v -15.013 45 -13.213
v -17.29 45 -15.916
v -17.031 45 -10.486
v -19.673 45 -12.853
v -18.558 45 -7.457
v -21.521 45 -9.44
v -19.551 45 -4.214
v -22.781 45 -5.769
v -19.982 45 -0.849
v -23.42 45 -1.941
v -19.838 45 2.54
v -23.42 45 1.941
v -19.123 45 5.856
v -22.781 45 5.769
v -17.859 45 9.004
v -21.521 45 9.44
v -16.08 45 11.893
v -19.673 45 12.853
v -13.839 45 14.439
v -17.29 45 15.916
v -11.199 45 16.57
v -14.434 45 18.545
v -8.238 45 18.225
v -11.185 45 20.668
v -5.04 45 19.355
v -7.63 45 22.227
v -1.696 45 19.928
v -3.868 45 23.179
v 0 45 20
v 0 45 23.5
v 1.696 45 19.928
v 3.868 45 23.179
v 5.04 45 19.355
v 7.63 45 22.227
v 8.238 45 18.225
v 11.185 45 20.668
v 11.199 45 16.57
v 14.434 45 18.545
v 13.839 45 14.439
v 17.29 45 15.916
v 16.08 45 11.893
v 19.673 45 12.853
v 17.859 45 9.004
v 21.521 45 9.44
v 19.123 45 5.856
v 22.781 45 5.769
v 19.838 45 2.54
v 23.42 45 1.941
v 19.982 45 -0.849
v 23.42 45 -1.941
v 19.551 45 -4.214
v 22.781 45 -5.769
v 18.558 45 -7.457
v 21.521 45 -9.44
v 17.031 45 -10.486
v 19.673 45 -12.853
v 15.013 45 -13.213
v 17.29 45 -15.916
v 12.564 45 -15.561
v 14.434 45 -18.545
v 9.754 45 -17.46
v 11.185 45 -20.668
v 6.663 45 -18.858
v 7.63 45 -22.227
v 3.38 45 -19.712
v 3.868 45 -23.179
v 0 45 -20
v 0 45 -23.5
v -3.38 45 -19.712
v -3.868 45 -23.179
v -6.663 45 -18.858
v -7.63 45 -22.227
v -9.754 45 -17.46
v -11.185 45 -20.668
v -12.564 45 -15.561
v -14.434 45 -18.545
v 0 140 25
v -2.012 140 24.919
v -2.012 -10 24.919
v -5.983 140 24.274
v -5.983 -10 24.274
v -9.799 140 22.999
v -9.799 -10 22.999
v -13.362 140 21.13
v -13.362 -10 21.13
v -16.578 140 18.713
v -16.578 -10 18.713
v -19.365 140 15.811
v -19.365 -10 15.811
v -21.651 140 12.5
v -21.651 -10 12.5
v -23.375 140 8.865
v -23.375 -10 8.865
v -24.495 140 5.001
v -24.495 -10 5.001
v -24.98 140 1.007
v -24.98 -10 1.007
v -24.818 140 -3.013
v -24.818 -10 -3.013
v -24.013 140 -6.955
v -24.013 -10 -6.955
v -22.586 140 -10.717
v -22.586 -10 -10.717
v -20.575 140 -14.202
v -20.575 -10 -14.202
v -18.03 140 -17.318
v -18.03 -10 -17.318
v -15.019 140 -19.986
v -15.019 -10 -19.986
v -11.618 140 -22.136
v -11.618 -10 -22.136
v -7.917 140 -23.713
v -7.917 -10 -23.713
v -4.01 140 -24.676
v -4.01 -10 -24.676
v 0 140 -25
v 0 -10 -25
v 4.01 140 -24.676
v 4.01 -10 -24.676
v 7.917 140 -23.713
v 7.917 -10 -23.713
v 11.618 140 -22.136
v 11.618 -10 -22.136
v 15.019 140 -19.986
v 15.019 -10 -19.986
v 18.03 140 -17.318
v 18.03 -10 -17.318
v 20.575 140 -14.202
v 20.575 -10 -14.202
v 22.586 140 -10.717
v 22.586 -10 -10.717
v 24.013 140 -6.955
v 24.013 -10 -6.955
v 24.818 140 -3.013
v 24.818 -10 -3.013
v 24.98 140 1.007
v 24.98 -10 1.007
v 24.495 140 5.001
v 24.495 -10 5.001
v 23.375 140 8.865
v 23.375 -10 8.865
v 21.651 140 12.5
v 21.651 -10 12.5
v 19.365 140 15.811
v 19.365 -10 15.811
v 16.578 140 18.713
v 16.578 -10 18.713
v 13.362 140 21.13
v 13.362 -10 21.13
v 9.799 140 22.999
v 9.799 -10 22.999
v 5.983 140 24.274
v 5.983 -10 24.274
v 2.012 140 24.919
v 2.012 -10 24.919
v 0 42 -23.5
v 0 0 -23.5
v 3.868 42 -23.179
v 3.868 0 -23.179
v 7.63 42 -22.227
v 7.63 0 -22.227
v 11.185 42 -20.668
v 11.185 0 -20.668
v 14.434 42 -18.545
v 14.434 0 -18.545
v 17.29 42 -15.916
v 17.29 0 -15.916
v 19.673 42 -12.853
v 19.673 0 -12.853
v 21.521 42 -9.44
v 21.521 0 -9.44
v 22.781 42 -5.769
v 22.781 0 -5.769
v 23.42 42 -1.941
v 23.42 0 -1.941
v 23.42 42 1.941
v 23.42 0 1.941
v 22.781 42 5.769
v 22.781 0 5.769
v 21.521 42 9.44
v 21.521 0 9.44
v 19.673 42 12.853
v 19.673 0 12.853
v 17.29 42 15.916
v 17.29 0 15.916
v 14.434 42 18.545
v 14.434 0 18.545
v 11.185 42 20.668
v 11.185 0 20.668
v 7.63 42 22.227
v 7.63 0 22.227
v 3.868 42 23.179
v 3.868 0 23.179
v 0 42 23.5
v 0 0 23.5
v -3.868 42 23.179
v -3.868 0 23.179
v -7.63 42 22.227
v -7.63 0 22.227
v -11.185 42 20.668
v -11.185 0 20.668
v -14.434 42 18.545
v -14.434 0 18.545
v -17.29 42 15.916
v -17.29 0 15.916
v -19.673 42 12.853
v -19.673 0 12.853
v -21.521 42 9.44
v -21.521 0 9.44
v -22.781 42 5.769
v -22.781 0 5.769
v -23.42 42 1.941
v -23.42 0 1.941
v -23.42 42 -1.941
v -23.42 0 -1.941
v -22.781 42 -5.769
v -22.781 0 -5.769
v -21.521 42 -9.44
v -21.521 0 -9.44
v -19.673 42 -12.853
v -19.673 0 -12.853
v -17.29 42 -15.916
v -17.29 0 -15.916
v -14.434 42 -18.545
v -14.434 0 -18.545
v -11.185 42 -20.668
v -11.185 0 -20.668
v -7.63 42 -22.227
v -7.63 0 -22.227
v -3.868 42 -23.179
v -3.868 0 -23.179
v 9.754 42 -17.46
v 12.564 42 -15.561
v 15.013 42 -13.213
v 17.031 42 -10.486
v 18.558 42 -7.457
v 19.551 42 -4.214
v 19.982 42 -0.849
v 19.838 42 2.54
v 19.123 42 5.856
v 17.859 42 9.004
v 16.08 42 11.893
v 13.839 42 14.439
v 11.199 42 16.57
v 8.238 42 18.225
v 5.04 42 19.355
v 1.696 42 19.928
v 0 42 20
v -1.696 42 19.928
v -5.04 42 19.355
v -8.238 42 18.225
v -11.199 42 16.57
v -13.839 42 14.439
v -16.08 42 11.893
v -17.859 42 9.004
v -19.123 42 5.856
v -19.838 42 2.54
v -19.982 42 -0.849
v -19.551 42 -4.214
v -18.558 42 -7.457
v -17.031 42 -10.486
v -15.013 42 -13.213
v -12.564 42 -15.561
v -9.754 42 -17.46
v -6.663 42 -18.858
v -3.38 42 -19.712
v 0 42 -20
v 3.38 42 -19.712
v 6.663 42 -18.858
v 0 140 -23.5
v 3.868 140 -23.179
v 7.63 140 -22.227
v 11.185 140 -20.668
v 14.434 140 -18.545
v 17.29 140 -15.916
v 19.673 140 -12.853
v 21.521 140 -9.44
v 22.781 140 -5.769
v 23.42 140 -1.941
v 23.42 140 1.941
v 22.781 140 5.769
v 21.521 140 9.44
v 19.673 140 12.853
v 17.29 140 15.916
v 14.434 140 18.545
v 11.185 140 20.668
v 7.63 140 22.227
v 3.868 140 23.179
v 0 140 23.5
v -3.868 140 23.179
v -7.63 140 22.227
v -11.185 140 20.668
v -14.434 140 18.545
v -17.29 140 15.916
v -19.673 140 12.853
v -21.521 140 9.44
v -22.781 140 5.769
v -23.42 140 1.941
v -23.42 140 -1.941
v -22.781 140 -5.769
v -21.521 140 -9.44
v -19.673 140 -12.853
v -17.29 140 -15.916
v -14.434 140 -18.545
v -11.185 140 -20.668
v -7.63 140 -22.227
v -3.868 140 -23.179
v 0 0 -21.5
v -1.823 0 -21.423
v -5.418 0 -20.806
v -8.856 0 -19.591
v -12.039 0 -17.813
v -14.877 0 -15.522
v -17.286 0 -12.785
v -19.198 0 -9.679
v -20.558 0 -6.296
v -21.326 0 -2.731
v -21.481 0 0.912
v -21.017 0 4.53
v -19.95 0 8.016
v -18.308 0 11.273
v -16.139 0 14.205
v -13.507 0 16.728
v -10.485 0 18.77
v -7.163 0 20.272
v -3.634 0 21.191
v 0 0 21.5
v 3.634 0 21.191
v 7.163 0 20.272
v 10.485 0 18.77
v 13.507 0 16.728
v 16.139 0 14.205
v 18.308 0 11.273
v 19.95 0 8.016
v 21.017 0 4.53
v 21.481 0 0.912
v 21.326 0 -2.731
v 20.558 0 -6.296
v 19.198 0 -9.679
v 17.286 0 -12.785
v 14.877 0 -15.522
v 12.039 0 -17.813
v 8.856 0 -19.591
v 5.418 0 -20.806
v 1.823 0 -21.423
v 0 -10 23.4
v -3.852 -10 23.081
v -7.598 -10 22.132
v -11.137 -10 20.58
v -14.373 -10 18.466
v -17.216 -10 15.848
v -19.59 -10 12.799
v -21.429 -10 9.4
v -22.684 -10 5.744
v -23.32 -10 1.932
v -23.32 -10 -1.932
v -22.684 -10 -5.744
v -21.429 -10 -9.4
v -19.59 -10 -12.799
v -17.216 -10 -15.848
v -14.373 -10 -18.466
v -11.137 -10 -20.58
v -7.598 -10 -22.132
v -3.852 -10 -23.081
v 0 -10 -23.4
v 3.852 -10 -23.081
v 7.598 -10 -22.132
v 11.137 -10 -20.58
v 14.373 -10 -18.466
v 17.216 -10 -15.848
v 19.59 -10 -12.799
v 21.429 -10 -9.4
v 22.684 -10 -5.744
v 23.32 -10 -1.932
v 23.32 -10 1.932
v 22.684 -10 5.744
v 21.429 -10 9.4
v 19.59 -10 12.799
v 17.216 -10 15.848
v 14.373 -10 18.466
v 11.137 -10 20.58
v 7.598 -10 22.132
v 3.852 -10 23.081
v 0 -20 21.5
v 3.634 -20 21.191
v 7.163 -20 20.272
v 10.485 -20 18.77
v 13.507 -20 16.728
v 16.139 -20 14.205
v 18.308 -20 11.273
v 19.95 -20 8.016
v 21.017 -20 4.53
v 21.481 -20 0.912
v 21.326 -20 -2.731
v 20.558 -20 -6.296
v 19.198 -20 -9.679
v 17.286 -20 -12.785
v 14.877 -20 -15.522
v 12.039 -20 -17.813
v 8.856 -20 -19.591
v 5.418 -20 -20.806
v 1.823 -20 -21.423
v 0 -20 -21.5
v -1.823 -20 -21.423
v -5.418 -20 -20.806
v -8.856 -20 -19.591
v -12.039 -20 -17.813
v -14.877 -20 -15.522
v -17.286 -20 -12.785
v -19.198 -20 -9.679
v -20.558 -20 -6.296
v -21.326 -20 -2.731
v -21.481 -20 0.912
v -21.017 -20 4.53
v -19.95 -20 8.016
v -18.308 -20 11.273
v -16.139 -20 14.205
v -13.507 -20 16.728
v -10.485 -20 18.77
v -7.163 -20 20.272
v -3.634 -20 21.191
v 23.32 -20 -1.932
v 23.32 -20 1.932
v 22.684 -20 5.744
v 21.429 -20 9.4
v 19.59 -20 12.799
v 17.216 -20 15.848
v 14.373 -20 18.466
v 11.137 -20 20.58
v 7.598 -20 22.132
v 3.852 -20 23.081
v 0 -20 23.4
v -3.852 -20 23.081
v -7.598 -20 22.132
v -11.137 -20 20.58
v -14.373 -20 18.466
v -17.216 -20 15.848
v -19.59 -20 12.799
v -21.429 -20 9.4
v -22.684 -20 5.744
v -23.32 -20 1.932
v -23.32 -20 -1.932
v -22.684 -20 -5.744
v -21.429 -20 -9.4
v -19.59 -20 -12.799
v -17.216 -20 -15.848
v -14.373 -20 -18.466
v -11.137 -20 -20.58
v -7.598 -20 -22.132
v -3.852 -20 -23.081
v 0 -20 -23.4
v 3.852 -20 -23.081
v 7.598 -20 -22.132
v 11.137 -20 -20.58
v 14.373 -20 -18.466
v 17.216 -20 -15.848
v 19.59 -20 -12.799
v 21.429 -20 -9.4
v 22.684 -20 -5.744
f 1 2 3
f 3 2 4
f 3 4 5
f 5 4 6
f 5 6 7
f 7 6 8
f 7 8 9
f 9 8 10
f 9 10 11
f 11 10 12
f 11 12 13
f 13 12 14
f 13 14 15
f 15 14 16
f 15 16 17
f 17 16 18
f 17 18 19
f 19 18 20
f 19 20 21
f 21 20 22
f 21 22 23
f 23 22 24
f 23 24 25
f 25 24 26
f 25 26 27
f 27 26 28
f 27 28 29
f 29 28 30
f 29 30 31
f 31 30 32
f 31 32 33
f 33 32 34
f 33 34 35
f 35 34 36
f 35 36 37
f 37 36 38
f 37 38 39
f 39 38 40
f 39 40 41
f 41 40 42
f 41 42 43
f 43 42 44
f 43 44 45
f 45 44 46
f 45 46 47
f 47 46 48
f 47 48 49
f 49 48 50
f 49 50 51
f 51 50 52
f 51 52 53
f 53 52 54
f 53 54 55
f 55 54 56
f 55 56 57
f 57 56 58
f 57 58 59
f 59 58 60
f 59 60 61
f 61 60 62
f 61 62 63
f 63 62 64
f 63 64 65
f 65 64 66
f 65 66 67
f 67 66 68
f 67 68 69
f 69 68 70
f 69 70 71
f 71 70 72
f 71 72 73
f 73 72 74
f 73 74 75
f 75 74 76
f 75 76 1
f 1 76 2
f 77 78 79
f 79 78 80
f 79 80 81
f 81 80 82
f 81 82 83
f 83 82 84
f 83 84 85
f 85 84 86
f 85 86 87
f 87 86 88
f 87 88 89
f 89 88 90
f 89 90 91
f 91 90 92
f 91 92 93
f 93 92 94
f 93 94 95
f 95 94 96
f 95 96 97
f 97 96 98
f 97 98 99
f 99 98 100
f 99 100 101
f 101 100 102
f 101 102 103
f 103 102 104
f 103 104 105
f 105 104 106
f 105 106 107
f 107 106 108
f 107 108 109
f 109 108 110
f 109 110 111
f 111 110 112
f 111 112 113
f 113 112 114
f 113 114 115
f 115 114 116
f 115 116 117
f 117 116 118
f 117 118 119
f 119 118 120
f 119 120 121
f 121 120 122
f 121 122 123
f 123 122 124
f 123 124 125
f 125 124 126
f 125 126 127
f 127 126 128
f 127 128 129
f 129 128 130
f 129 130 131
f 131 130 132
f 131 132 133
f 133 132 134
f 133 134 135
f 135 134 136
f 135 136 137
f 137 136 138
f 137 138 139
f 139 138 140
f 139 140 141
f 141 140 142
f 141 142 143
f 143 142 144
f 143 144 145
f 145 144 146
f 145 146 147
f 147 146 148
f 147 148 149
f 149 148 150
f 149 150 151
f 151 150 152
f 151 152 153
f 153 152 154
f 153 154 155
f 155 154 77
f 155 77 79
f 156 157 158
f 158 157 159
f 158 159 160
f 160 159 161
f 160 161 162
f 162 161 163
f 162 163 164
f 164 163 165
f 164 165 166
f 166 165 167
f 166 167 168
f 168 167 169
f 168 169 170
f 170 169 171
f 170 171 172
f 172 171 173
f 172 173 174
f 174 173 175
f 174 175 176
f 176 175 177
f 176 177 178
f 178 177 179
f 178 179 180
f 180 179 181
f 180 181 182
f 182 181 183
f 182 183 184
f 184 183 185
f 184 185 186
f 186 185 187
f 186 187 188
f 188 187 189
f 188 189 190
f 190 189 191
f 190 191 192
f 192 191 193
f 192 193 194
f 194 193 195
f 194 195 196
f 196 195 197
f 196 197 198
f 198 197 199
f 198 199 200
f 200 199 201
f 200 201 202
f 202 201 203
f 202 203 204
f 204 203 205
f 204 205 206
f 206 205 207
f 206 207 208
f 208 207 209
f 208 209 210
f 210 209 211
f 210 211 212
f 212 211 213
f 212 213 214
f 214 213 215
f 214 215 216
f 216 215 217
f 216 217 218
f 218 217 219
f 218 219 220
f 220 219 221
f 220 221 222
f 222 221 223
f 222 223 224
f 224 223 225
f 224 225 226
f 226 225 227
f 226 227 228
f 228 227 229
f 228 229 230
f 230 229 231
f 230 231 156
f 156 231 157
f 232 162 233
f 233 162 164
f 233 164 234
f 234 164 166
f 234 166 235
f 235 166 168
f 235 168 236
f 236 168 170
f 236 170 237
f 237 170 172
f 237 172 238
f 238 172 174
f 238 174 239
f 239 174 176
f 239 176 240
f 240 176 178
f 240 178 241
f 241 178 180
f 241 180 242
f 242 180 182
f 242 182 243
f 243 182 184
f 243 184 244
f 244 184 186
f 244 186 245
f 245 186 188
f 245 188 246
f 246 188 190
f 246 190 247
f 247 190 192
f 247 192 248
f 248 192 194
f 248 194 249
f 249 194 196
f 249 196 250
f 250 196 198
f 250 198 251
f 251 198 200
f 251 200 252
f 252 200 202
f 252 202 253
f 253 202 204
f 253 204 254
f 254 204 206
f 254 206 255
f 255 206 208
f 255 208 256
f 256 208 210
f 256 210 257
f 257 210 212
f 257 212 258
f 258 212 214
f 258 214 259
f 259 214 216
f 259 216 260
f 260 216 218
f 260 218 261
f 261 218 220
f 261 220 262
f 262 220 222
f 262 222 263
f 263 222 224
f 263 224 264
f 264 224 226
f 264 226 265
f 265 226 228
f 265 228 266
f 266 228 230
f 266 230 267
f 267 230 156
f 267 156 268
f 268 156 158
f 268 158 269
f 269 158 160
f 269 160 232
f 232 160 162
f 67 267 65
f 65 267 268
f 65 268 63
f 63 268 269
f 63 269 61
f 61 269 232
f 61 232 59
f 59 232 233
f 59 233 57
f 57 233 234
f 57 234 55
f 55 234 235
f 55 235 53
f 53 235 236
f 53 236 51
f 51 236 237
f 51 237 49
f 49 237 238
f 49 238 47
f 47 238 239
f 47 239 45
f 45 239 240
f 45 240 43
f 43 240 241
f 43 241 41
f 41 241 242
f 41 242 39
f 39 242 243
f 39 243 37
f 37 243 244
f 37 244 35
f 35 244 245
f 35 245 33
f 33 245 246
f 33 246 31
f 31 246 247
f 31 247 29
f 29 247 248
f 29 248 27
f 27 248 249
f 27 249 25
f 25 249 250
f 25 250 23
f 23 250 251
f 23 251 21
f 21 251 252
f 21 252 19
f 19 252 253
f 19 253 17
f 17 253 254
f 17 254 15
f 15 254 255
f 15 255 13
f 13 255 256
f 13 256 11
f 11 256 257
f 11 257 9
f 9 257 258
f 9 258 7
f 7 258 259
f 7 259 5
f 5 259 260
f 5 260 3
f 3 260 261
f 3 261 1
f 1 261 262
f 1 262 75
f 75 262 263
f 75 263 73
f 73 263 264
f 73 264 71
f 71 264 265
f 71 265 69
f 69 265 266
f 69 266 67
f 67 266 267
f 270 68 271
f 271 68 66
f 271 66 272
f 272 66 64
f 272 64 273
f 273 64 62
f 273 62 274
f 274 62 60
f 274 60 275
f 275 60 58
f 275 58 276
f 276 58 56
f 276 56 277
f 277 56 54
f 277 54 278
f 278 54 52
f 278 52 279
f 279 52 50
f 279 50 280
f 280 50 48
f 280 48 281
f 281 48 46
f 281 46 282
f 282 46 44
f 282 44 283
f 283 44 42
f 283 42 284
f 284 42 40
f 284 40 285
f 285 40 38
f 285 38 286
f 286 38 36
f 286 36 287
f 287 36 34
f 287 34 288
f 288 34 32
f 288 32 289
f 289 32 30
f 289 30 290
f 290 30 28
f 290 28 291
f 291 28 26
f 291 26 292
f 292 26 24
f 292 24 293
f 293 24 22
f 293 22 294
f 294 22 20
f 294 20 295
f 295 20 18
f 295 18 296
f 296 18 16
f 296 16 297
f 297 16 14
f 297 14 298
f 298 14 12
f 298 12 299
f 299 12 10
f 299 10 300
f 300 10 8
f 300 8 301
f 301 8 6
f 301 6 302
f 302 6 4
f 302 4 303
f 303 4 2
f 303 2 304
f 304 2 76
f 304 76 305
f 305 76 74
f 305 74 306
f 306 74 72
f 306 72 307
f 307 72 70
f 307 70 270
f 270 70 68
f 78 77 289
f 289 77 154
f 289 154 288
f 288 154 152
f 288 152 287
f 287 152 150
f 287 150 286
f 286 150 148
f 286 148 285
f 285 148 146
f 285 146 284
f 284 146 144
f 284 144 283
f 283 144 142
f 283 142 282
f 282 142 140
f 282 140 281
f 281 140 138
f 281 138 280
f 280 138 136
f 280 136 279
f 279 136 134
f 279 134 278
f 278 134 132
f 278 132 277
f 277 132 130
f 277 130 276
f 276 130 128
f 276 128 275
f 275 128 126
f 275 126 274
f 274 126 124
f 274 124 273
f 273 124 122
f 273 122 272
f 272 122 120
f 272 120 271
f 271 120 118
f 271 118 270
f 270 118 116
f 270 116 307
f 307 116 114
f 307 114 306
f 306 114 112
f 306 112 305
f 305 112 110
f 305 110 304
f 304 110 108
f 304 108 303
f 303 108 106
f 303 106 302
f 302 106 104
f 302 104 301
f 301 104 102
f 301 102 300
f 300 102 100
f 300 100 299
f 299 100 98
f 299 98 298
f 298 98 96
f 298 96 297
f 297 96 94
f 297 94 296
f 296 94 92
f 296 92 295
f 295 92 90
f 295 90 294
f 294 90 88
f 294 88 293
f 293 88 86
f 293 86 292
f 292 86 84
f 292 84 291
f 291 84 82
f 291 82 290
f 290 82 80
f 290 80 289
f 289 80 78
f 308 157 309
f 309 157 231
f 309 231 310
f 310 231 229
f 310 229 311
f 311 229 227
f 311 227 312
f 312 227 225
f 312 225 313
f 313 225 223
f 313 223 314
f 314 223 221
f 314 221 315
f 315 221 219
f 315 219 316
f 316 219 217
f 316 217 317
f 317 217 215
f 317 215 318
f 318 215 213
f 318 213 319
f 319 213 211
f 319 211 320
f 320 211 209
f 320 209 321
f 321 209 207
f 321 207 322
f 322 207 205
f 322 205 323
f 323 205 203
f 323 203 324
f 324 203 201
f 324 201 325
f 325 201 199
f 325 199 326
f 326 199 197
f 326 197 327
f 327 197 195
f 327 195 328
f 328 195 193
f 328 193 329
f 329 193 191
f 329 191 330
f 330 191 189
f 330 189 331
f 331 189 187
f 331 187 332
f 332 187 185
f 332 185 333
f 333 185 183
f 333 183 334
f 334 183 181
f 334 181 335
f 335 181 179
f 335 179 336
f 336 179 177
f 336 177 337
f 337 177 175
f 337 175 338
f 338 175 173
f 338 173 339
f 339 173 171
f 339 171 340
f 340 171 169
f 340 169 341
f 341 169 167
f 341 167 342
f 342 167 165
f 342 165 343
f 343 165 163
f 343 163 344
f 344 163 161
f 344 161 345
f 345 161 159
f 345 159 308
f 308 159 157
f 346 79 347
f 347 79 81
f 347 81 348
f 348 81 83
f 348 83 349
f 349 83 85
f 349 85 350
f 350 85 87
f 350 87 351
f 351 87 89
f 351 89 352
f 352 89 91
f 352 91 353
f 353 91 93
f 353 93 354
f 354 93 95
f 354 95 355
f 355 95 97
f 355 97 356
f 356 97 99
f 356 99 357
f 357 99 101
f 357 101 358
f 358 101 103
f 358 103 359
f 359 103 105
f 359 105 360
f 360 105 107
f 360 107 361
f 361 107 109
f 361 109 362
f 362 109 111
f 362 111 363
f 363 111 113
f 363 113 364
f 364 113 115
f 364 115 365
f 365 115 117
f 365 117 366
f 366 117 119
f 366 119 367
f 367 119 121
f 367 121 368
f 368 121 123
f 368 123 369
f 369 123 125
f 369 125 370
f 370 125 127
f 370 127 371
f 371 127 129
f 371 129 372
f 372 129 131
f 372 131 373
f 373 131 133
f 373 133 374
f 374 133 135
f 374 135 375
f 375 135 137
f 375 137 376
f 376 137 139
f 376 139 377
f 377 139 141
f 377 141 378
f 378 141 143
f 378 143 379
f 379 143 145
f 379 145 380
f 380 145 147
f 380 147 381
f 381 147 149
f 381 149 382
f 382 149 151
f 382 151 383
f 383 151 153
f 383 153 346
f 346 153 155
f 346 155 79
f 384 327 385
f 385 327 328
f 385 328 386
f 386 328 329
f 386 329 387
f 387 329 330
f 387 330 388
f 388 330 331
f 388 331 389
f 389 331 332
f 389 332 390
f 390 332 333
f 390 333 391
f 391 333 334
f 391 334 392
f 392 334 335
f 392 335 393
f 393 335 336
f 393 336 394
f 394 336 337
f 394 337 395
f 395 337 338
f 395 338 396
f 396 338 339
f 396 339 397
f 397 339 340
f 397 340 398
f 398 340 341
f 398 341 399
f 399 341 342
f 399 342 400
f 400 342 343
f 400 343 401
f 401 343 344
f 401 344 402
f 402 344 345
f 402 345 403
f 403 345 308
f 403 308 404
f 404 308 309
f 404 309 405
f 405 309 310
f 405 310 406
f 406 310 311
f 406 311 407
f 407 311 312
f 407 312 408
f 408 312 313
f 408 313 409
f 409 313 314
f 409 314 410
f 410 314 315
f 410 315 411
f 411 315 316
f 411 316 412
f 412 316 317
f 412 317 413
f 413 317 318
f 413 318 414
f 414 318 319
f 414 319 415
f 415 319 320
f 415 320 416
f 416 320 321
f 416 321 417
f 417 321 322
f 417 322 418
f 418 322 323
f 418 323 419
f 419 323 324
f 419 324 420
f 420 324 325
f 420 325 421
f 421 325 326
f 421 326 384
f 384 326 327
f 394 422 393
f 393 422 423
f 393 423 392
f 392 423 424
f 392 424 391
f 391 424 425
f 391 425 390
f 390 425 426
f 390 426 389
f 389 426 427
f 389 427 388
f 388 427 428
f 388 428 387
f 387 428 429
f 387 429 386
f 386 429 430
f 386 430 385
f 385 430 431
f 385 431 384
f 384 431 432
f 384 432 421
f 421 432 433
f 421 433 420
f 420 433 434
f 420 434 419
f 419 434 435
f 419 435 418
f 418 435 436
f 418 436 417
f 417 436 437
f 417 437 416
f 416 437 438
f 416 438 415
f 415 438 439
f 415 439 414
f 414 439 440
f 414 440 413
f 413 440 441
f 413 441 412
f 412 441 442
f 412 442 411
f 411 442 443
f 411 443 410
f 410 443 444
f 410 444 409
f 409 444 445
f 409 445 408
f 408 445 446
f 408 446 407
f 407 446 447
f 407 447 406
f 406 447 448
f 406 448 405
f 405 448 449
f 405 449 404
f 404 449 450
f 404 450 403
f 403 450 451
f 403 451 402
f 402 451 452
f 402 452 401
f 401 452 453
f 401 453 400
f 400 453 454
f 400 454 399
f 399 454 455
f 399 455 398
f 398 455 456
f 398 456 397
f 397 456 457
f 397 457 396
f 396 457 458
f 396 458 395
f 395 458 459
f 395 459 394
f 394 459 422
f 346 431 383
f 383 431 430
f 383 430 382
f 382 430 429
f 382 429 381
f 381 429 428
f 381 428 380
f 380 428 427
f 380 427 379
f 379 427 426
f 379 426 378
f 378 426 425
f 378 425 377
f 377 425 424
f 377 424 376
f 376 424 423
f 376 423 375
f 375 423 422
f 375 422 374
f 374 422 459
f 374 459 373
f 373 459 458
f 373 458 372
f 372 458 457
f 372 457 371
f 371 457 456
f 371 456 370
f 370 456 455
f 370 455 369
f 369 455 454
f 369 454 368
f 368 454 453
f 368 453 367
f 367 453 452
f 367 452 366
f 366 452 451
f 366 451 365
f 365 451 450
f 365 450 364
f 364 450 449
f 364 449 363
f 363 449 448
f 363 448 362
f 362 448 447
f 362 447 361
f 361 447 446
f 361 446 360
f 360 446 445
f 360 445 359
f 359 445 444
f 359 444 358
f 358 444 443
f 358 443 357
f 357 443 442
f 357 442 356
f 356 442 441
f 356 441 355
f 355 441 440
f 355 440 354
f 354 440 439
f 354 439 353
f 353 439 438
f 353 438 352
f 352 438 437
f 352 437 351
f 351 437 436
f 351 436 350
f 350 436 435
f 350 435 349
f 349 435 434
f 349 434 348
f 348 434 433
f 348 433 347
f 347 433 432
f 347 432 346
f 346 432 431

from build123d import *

# Parameters (mm, degrees)
ESQUISSE1_R        = 25
ESQUISSE1_R_2      = 23.5
BOSS_EXTRU_1_DEPTH = 42
ESQUISSE4_R        = 25
ESQUISSE4_R_2      = 20
BOSS_EXTRU_4_DEPTH = 3
ESQUISSE5_R        = 25
ESQUISSE5_R_2      = 23.5
BOSS_EXTRU_5_DEPTH = 95
BOSS_EXTRU_6_START = 10
ESQUISSE7_R        = 25
ESQUISSE7_R_2      = 21.5
BOSS_EXTRU_6_DEPTH = 10
BOSS_EXTRU_7_START = 10
ESQUISSE8_R        = 23.4
ESQUISSE8_R_2      = 21.5
BOSS_EXTRU_7_DEPTH = 10


with BuildPart() as part:
    # Esquisse1 → Boss.-Extru.1 (new body)
    with BuildSketch(Plane(origin=(0, 0, 0), x_dir=(1, 0, 0), z_dir=(0, 1, 0))):
        with Locations(Location((0, 0, 0), (0, 0, 90))):
            Circle(ESQUISSE1_R)
        with Locations(Location((0, 0, 0), (0, 0, 90))):
            Circle(ESQUISSE1_R_2, mode=Mode.SUBTRACT)
    extrude(amount=BOSS_EXTRU_1_DEPTH)

    # Esquisse4 → Boss.-Extru.4 (add)
    with BuildSketch(Plane(origin=(0, 42, 0), x_dir=(1, 0, 0), z_dir=(0, 1, 0))):
        with Locations(Location((0, 0, 0), (0, 0, 90))):
            Circle(ESQUISSE4_R)
        with Locations(Location((0, 0, 0), (0, 0, 270))):
            Circle(ESQUISSE4_R_2, mode=Mode.SUBTRACT)
    extrude(amount=BOSS_EXTRU_4_DEPTH)

    # Esquisse5 → Boss.-Extru.5 (add)
    with BuildSketch(Plane(origin=(0, 45, 0), x_dir=(1, 0, 0), z_dir=(0, 1, 0))):
        with Locations(Location((0, 0, 0), (0, 0, 90))):
            Circle(ESQUISSE5_R)
        with Locations(Location((0, 0, 0), (0, 0, 90))):
            Circle(ESQUISSE5_R_2, mode=Mode.SUBTRACT)
    extrude(amount=BOSS_EXTRU_5_DEPTH)

    # Esquisse7 → Boss.-Extru.6 (add)
    with BuildSketch(Plane.XZ.offset(BOSS_EXTRU_6_START)):
        with Locations(Location((0, 0, 0), (0, 0, 270))):
            Circle(ESQUISSE7_R)
        with Locations(Location((0, 0, 0), (0, 0, 270))):
            Circle(ESQUISSE7_R_2, mode=Mode.SUBTRACT)
    extrude(amount=-BOSS_EXTRU_6_DEPTH)

    # Esquisse8 → Boss.-Extru.7 (add)
    with BuildSketch(Plane.XZ.offset(10).offset(BOSS_EXTRU_7_START)):
        with Locations(Location((0, 0, 0), (0, 0, 270))):
            Circle(ESQUISSE8_R)
        with Locations(Location((0, 0, 0), (0, 0, 270))):
            Circle(ESQUISSE8_R_2, mode=Mode.SUBTRACT)
    extrude(amount=-BOSS_EXTRU_7_DEPTH)


solid = part.part
